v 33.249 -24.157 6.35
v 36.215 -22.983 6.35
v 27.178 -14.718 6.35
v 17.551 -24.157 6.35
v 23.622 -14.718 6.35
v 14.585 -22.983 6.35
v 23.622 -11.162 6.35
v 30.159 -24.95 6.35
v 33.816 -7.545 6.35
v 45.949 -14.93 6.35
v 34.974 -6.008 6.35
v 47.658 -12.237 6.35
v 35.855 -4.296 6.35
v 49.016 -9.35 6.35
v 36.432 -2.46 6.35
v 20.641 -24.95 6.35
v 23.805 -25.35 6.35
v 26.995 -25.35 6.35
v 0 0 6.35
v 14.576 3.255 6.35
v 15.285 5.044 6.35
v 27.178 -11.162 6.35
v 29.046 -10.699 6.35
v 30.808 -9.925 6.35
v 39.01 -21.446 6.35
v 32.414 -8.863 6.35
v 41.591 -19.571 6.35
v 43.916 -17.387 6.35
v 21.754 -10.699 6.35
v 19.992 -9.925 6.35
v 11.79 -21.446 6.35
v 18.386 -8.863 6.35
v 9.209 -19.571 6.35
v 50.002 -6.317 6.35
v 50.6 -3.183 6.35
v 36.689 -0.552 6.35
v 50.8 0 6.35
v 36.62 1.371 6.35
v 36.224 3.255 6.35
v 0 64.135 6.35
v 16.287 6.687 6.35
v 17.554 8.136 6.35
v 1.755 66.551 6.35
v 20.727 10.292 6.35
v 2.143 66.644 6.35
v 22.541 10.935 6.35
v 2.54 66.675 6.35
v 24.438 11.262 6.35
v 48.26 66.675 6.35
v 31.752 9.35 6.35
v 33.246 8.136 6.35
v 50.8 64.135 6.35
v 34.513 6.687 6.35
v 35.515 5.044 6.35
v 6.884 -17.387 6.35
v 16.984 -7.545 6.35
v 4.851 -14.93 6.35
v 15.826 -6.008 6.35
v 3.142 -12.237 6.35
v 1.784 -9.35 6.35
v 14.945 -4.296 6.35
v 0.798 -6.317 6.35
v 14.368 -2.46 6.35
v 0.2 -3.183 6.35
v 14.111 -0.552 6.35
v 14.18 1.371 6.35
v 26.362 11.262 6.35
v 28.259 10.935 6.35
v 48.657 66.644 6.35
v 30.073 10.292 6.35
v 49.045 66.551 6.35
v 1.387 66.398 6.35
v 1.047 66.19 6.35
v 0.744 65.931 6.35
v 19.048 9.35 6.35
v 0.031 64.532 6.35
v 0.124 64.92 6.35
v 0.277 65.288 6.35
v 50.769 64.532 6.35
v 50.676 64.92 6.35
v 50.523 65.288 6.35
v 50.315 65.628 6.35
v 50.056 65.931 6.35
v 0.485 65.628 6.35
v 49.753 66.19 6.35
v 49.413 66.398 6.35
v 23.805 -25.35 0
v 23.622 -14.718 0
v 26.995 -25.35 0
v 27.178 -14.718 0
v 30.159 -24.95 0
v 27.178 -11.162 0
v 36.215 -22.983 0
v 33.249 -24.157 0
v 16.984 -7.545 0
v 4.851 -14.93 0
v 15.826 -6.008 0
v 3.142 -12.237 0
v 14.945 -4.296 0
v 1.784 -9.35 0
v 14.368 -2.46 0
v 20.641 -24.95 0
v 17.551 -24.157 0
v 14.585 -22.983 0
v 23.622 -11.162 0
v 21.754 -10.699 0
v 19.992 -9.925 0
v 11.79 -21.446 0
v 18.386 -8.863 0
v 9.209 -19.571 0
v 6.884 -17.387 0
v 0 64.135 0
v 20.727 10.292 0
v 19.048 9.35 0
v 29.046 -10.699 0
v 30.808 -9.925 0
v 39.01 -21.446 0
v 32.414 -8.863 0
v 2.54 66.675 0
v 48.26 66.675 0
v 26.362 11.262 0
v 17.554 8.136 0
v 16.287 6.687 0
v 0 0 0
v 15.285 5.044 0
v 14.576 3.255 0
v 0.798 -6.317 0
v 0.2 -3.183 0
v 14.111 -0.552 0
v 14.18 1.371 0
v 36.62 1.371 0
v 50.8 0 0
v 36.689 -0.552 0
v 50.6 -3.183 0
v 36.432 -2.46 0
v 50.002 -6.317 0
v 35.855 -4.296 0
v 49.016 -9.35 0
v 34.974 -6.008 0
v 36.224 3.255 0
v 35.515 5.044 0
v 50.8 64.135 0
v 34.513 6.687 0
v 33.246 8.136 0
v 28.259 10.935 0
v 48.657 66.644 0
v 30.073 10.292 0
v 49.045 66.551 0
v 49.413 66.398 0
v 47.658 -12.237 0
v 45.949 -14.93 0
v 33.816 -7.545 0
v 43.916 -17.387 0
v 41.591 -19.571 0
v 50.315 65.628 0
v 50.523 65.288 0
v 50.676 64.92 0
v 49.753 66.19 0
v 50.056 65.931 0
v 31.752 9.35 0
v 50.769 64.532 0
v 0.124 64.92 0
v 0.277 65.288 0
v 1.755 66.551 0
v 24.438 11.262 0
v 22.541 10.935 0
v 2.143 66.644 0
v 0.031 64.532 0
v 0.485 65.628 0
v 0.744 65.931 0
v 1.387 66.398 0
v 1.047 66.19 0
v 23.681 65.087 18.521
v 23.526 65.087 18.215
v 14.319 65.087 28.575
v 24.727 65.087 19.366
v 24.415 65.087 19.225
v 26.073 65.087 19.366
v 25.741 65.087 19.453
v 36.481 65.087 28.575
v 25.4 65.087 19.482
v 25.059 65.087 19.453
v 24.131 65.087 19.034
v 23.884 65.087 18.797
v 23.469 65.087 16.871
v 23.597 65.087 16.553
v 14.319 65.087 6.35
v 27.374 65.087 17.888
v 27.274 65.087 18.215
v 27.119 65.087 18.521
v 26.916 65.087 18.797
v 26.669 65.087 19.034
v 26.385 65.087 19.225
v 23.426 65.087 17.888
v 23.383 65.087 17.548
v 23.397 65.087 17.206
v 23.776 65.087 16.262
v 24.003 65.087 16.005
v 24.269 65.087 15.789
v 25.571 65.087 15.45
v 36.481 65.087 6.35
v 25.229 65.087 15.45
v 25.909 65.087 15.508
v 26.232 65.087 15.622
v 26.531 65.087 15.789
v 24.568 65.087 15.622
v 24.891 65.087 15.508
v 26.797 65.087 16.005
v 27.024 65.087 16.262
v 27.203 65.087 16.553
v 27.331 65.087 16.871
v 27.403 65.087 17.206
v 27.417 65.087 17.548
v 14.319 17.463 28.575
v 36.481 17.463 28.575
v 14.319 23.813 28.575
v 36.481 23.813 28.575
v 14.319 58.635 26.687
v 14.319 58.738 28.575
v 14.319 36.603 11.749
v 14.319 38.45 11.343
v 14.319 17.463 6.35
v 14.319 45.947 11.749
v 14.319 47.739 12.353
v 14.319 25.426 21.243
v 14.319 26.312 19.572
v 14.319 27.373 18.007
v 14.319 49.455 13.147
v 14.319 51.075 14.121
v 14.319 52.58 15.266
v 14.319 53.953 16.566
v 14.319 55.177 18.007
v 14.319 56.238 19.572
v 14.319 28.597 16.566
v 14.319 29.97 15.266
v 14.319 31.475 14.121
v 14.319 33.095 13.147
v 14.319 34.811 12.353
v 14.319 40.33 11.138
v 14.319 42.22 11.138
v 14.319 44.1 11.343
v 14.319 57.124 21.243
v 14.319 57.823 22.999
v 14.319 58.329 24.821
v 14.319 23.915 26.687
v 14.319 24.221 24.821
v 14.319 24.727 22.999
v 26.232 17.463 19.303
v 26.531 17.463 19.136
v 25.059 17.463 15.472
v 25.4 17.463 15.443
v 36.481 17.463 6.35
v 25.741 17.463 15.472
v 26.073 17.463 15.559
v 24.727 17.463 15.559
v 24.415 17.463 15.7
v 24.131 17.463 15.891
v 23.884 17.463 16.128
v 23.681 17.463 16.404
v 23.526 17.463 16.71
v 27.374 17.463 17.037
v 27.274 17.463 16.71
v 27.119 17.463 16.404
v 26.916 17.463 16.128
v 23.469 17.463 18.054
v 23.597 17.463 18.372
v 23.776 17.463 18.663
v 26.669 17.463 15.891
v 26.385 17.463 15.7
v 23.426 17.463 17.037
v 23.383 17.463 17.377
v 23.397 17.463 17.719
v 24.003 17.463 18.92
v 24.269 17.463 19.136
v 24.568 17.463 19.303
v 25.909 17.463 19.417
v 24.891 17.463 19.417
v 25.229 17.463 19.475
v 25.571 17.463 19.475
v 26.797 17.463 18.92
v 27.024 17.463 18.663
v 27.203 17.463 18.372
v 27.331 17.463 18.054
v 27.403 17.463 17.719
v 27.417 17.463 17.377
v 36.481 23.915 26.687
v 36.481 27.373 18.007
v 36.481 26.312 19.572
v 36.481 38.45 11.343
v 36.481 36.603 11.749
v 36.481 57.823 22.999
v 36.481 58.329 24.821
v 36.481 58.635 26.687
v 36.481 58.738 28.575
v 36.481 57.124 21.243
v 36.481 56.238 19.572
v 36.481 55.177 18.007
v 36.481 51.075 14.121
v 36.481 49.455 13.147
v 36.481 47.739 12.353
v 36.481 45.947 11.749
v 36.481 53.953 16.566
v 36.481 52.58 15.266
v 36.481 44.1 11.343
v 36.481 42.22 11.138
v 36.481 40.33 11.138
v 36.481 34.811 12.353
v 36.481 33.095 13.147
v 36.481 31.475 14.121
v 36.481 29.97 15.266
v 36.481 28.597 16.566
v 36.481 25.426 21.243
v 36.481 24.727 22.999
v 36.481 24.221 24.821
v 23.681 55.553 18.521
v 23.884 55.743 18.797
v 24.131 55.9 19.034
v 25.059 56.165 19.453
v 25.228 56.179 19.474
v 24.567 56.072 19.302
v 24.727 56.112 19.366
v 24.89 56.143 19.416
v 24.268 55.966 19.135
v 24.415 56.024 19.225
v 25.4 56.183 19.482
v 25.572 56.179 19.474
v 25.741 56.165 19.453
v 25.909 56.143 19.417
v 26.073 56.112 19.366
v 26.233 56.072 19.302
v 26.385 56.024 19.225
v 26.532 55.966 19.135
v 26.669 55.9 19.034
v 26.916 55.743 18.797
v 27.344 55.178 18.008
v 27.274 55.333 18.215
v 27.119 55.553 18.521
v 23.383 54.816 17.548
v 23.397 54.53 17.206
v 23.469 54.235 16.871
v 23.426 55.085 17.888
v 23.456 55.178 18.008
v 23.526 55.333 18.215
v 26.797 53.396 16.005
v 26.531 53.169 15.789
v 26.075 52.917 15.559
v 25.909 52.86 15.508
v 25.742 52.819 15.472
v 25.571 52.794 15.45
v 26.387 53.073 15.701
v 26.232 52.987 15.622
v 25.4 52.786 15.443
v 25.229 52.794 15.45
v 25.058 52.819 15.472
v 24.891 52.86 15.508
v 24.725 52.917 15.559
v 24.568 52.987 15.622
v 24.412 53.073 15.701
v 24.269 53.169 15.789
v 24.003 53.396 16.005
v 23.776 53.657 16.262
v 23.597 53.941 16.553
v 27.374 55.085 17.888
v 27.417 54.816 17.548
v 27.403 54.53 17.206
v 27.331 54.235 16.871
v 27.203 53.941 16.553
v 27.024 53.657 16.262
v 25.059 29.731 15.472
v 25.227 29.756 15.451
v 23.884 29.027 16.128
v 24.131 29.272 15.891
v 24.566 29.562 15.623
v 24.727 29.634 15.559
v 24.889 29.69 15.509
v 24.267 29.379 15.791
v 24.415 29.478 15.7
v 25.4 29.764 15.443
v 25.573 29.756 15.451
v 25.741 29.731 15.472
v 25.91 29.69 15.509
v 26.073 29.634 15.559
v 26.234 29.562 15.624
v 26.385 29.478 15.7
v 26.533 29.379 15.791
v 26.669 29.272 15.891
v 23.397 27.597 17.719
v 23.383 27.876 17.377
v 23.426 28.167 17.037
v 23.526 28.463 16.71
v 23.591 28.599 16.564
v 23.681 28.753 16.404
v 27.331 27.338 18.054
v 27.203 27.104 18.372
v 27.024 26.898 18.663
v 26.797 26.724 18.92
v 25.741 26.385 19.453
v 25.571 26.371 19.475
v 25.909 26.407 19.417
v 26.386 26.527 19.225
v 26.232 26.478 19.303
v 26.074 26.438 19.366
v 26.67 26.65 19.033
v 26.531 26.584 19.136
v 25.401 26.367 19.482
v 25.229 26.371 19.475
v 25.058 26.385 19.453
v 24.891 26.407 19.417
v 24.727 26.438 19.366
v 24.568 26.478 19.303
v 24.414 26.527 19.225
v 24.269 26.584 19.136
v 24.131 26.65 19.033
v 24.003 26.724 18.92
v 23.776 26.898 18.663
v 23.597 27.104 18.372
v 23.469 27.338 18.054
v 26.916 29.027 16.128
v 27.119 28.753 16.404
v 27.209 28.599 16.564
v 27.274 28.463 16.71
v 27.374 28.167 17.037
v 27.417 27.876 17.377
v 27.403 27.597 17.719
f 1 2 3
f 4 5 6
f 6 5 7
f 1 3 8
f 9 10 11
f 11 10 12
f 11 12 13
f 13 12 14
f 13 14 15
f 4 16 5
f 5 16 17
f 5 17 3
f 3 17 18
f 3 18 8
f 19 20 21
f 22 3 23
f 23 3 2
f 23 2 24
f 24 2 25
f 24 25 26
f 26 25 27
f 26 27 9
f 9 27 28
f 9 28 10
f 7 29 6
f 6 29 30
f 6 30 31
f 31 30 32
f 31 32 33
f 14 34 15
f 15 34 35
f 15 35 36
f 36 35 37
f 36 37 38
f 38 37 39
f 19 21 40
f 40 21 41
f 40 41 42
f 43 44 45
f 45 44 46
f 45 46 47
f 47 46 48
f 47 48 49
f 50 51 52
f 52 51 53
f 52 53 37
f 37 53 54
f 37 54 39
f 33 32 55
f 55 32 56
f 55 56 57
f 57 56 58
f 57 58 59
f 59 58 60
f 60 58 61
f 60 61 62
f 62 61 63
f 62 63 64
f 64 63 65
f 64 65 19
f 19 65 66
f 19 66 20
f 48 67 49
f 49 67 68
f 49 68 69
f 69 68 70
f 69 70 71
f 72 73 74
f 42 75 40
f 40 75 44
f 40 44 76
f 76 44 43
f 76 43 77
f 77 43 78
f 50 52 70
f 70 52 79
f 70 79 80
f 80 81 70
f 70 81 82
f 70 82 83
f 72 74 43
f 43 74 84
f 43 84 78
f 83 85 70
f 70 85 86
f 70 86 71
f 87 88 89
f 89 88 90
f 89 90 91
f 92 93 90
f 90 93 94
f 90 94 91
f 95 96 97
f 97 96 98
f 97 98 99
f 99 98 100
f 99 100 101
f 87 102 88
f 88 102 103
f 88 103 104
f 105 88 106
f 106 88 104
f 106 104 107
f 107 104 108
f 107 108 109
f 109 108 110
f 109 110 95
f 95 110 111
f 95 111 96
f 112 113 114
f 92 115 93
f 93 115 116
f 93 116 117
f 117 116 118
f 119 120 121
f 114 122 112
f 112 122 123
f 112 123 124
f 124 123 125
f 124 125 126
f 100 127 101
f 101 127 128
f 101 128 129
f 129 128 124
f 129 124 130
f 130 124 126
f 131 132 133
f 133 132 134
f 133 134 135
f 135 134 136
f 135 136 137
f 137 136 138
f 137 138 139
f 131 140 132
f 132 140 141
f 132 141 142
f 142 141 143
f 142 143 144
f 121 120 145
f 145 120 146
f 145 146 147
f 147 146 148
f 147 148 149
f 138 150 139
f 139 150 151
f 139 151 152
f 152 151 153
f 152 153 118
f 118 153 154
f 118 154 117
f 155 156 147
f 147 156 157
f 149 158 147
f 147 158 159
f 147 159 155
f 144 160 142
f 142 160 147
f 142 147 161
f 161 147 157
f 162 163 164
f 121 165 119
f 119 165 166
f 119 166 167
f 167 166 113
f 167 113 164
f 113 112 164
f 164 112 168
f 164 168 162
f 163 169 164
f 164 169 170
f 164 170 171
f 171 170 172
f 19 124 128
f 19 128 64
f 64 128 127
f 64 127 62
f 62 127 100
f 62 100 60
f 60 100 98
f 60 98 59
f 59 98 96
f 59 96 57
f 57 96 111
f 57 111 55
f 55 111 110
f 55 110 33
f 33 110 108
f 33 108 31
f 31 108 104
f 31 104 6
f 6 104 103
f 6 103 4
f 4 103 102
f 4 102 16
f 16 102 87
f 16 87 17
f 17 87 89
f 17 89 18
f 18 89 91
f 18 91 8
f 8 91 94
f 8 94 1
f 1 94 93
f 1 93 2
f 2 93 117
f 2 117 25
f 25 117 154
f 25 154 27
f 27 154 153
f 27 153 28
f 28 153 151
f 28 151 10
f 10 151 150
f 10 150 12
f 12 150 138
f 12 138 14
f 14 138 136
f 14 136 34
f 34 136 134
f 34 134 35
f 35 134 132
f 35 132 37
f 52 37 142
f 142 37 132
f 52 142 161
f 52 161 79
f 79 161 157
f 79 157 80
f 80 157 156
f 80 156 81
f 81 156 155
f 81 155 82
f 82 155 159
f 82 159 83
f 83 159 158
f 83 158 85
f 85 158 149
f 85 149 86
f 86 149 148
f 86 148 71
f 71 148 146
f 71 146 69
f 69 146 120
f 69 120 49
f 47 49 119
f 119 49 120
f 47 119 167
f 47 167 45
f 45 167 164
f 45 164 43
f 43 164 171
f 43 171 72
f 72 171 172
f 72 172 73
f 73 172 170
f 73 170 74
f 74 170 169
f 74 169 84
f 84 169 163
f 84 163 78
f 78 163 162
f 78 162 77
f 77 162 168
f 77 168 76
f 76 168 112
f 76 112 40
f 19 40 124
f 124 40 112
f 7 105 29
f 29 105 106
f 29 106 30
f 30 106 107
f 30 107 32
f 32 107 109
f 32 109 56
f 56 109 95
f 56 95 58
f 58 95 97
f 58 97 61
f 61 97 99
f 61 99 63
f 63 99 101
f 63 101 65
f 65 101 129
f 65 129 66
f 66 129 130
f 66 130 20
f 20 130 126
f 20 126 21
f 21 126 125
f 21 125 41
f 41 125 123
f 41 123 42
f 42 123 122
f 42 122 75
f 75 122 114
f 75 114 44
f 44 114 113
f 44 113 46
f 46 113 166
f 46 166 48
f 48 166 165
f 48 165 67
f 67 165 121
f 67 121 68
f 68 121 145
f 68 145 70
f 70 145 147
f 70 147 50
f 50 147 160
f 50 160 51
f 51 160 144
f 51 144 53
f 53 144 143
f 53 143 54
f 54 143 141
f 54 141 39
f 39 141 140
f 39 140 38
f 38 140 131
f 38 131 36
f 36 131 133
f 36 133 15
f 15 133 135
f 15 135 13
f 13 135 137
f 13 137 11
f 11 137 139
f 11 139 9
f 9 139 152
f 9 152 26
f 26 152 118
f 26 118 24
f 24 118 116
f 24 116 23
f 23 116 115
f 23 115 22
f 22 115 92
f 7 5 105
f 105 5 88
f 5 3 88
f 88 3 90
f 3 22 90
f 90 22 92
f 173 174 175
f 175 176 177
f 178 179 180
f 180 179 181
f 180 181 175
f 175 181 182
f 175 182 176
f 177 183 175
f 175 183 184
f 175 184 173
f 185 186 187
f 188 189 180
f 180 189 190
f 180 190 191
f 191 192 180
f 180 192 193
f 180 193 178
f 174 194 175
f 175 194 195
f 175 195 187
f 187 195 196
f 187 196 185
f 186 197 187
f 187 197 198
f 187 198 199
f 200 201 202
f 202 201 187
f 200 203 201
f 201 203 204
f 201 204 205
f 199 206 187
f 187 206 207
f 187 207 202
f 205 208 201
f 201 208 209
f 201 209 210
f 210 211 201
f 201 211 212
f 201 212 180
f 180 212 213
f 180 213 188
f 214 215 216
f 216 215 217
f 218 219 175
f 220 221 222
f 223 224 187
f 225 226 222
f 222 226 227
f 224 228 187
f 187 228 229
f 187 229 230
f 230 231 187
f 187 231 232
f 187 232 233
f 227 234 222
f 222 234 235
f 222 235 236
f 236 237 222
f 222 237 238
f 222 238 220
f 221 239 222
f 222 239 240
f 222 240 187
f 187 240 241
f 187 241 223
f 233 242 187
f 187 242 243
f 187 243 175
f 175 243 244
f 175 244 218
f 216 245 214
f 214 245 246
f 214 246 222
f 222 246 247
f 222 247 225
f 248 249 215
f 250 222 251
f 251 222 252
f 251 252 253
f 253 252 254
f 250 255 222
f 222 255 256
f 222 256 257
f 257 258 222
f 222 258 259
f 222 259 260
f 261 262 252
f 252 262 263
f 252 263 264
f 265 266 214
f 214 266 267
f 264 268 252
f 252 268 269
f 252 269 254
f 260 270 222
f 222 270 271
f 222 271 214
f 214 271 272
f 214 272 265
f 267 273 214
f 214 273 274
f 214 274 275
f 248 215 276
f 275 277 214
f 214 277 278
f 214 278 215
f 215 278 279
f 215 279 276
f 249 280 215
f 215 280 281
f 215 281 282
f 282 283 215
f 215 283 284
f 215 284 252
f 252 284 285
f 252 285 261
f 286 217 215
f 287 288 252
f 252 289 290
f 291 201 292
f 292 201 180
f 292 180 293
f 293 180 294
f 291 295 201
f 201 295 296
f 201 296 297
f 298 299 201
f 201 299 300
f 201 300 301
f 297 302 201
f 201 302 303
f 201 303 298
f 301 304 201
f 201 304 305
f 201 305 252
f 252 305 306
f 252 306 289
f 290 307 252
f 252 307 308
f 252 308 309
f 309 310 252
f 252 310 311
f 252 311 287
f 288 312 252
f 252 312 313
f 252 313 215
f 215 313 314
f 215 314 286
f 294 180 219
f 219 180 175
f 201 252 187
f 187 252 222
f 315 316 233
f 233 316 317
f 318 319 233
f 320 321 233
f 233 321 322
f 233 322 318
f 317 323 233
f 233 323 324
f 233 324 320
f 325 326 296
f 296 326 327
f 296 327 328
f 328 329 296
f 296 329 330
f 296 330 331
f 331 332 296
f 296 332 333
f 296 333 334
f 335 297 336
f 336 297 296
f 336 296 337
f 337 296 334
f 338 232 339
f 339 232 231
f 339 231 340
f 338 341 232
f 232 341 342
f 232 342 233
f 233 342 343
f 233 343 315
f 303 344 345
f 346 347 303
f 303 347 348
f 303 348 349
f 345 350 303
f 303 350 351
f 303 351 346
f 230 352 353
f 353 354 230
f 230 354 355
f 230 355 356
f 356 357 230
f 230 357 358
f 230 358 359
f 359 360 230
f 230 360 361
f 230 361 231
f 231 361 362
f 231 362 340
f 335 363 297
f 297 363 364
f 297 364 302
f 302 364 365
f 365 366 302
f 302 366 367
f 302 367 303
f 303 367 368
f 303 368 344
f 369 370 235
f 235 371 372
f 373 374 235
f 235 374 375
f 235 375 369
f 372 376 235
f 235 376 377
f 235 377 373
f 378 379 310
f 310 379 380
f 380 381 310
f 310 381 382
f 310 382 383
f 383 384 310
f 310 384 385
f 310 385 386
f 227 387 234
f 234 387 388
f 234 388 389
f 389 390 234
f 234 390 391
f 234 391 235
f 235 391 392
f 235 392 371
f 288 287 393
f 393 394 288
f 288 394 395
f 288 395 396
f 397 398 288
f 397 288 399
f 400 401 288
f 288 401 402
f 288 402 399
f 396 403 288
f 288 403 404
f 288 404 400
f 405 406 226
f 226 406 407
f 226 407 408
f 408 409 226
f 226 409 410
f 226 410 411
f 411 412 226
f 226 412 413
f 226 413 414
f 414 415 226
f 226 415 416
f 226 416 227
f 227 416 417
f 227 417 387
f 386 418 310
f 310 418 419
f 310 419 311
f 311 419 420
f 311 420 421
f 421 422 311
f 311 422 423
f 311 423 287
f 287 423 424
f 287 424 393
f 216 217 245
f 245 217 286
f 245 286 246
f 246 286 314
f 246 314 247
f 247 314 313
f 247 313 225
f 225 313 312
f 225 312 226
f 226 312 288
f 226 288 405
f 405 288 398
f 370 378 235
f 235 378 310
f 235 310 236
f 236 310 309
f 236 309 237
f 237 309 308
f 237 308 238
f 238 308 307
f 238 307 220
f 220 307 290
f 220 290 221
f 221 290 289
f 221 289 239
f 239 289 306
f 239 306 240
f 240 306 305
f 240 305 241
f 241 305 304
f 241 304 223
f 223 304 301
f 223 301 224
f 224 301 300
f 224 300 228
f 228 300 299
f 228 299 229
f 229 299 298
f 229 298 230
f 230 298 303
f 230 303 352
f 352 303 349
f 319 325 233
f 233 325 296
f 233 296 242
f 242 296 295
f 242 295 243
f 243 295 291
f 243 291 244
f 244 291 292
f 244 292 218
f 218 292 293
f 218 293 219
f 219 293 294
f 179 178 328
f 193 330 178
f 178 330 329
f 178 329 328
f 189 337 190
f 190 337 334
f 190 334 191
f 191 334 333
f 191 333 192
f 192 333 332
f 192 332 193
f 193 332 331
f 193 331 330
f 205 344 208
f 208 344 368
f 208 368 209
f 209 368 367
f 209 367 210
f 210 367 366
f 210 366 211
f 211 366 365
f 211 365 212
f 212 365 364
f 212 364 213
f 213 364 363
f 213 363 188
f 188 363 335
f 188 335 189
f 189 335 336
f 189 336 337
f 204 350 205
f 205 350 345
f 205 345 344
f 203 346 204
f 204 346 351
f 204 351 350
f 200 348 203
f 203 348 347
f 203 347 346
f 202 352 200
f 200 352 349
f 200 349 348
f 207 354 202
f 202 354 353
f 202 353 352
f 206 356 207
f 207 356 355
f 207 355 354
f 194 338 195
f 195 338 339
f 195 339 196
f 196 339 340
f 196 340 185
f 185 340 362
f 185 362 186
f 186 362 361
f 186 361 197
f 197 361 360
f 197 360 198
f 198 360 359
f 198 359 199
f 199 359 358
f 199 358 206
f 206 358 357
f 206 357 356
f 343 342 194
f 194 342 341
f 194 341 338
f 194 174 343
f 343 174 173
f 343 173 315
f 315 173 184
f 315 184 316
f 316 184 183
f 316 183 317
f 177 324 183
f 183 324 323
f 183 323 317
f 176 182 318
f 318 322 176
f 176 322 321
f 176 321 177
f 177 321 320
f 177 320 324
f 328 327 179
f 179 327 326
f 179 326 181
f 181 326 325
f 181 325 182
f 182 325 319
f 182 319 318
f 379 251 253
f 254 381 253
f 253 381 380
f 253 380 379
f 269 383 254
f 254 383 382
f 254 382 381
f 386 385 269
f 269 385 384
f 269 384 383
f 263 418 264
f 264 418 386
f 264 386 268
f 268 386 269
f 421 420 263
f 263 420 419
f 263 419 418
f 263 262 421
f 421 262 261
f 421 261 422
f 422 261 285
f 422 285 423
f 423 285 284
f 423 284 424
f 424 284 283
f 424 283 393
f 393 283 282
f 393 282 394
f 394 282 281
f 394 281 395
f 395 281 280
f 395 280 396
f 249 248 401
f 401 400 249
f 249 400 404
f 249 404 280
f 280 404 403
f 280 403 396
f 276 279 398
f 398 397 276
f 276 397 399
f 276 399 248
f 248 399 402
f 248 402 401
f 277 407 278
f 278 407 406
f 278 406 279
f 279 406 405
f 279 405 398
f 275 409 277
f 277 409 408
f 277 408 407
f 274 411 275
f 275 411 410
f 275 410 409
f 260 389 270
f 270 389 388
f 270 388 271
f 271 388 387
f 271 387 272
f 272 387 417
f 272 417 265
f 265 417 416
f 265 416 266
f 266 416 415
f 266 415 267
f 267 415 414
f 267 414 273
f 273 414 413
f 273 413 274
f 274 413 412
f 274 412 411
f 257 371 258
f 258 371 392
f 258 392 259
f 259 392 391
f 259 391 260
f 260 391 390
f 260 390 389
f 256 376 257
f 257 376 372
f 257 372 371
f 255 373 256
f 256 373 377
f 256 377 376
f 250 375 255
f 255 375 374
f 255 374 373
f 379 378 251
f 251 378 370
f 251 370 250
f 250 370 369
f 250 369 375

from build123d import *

# Parameters (mm, degrees)
BOSS_EXTRUDE1_DEPTH     = 6.35
SKETCH2_W               = 22.1615
SKETCH2_H               = 47.625
BOSS_EXTRUDE2_DEPTH     = 22.225
CUT_EXTRUDE1_DEPTH      = 82.196867985
CUT_EXTRUDE1_DEPTH_BACK = 82.196867985
SKETCH6_W               = 2.0193
SKETCH6_H               = 23.8125
SKETCH9_W               = 2.0193
SKETCH9_H               = 41.276


with BuildPart() as part:
    # Sketch1 → Boss-Extrude1 (new body)
    with BuildSketch(Plane.XY):
        with BuildLine():
            Line((0, 0), (0, 64.135))
            ThreePointArc((0, 64.135), (0.743948776, 65.931051224), (2.54, 66.675))
            Line((2.54, 66.675), (48.26, 66.675))
            ThreePointArc((48.26, 66.675), (50.056051224, 65.931051224), (50.8, 64.135))
            Line((50.8, 64.135), (50.8, 0))
            ThreePointArc((50.8, 0), (25.4, -25.4), (0, 0))
        make_face()
        with BuildLine():
            Line((23.622, -11.162281353), (23.622, -14.718281353))
            Line((23.622, -14.718281353), (27.178, -14.718281353))
            Line((27.178, -14.718281353), (27.178, -11.162281353))
            ThreePointArc((27.178, -11.162281353), (25.4, 11.303), (23.622, -11.162281353))
        make_face(mode=Mode.SUBTRACT)
    extrude(amount=BOSS_EXTRUDE1_DEPTH)


with BuildPart() as body_2:
    # Sketch2 → Boss-Extrude2 (new body)
    with BuildSketch(Plane.XY.offset(6.35)):
        with Locations((25.4, 41.275)):
            Rectangle(SKETCH2_W, SKETCH2_H)
    extrude(amount=BOSS_EXTRUDE2_DEPTH)

    # Sketch3 → Cut-Extrude1 (cut, two sides: drawn at the far end of the back side and taken through both)
    with BuildSketch(Plane.ZY.offset(-14.31925).offset(-CUT_EXTRUDE1_DEPTH_BACK)):
        with BuildLine():
            Line((216.289935008, 23.8125), (28.575, 23.8125))
            ThreePointArc((28.575, 23.8125), (11.1125, 41.275), (28.575, 58.7375))
            Line((28.575, 58.7375), (216.289935008, 58.7375))
            Line((216.289935008, 58.7375), (591.719805025, 58.7375))
            Line((591.719805025, 58.7375), (591.719805025, 23.8125))
            Line((591.719805025, 23.8125), (216.289935008, 23.8125))
        make_face()
    extrude(amount=CUT_EXTRUDE1_DEPTH + CUT_EXTRUDE1_DEPTH_BACK, mode=Mode.SUBTRACT)

    # Sketch6 → #10-32 Tapped Hole1 (revolve, cut)
    with BuildSketch(Plane(origin=(25.4, 65.0875, 17.4625), x_dir=(0, 0, 1), z_dir=(1, 0, 0))):
        with Locations((1.00965, 11.90625)):
            Rectangle(SKETCH6_W, SKETCH6_H)
    revolve(axis=Axis((25.4, 71.4375, 17.4625), (0, -1, 0)), mode=Mode.SUBTRACT)

    # Sketch9 → #10-32 Tapped Hole2 (revolve, cut)
    with BuildSketch(Plane(origin=(25.4, 17.4625, 17.4625), x_dir=(0, 0, -1), z_dir=(1, 0, 0))):
        with Locations((1.00965, 20.638)):
            Rectangle(SKETCH9_W, SKETCH9_H)
    revolve(axis=Axis((25.4, 11.1125, 17.4625), (0, 1, 0)), mode=Mode.SUBTRACT)


solid = Compound([part.part, body_2.part])
